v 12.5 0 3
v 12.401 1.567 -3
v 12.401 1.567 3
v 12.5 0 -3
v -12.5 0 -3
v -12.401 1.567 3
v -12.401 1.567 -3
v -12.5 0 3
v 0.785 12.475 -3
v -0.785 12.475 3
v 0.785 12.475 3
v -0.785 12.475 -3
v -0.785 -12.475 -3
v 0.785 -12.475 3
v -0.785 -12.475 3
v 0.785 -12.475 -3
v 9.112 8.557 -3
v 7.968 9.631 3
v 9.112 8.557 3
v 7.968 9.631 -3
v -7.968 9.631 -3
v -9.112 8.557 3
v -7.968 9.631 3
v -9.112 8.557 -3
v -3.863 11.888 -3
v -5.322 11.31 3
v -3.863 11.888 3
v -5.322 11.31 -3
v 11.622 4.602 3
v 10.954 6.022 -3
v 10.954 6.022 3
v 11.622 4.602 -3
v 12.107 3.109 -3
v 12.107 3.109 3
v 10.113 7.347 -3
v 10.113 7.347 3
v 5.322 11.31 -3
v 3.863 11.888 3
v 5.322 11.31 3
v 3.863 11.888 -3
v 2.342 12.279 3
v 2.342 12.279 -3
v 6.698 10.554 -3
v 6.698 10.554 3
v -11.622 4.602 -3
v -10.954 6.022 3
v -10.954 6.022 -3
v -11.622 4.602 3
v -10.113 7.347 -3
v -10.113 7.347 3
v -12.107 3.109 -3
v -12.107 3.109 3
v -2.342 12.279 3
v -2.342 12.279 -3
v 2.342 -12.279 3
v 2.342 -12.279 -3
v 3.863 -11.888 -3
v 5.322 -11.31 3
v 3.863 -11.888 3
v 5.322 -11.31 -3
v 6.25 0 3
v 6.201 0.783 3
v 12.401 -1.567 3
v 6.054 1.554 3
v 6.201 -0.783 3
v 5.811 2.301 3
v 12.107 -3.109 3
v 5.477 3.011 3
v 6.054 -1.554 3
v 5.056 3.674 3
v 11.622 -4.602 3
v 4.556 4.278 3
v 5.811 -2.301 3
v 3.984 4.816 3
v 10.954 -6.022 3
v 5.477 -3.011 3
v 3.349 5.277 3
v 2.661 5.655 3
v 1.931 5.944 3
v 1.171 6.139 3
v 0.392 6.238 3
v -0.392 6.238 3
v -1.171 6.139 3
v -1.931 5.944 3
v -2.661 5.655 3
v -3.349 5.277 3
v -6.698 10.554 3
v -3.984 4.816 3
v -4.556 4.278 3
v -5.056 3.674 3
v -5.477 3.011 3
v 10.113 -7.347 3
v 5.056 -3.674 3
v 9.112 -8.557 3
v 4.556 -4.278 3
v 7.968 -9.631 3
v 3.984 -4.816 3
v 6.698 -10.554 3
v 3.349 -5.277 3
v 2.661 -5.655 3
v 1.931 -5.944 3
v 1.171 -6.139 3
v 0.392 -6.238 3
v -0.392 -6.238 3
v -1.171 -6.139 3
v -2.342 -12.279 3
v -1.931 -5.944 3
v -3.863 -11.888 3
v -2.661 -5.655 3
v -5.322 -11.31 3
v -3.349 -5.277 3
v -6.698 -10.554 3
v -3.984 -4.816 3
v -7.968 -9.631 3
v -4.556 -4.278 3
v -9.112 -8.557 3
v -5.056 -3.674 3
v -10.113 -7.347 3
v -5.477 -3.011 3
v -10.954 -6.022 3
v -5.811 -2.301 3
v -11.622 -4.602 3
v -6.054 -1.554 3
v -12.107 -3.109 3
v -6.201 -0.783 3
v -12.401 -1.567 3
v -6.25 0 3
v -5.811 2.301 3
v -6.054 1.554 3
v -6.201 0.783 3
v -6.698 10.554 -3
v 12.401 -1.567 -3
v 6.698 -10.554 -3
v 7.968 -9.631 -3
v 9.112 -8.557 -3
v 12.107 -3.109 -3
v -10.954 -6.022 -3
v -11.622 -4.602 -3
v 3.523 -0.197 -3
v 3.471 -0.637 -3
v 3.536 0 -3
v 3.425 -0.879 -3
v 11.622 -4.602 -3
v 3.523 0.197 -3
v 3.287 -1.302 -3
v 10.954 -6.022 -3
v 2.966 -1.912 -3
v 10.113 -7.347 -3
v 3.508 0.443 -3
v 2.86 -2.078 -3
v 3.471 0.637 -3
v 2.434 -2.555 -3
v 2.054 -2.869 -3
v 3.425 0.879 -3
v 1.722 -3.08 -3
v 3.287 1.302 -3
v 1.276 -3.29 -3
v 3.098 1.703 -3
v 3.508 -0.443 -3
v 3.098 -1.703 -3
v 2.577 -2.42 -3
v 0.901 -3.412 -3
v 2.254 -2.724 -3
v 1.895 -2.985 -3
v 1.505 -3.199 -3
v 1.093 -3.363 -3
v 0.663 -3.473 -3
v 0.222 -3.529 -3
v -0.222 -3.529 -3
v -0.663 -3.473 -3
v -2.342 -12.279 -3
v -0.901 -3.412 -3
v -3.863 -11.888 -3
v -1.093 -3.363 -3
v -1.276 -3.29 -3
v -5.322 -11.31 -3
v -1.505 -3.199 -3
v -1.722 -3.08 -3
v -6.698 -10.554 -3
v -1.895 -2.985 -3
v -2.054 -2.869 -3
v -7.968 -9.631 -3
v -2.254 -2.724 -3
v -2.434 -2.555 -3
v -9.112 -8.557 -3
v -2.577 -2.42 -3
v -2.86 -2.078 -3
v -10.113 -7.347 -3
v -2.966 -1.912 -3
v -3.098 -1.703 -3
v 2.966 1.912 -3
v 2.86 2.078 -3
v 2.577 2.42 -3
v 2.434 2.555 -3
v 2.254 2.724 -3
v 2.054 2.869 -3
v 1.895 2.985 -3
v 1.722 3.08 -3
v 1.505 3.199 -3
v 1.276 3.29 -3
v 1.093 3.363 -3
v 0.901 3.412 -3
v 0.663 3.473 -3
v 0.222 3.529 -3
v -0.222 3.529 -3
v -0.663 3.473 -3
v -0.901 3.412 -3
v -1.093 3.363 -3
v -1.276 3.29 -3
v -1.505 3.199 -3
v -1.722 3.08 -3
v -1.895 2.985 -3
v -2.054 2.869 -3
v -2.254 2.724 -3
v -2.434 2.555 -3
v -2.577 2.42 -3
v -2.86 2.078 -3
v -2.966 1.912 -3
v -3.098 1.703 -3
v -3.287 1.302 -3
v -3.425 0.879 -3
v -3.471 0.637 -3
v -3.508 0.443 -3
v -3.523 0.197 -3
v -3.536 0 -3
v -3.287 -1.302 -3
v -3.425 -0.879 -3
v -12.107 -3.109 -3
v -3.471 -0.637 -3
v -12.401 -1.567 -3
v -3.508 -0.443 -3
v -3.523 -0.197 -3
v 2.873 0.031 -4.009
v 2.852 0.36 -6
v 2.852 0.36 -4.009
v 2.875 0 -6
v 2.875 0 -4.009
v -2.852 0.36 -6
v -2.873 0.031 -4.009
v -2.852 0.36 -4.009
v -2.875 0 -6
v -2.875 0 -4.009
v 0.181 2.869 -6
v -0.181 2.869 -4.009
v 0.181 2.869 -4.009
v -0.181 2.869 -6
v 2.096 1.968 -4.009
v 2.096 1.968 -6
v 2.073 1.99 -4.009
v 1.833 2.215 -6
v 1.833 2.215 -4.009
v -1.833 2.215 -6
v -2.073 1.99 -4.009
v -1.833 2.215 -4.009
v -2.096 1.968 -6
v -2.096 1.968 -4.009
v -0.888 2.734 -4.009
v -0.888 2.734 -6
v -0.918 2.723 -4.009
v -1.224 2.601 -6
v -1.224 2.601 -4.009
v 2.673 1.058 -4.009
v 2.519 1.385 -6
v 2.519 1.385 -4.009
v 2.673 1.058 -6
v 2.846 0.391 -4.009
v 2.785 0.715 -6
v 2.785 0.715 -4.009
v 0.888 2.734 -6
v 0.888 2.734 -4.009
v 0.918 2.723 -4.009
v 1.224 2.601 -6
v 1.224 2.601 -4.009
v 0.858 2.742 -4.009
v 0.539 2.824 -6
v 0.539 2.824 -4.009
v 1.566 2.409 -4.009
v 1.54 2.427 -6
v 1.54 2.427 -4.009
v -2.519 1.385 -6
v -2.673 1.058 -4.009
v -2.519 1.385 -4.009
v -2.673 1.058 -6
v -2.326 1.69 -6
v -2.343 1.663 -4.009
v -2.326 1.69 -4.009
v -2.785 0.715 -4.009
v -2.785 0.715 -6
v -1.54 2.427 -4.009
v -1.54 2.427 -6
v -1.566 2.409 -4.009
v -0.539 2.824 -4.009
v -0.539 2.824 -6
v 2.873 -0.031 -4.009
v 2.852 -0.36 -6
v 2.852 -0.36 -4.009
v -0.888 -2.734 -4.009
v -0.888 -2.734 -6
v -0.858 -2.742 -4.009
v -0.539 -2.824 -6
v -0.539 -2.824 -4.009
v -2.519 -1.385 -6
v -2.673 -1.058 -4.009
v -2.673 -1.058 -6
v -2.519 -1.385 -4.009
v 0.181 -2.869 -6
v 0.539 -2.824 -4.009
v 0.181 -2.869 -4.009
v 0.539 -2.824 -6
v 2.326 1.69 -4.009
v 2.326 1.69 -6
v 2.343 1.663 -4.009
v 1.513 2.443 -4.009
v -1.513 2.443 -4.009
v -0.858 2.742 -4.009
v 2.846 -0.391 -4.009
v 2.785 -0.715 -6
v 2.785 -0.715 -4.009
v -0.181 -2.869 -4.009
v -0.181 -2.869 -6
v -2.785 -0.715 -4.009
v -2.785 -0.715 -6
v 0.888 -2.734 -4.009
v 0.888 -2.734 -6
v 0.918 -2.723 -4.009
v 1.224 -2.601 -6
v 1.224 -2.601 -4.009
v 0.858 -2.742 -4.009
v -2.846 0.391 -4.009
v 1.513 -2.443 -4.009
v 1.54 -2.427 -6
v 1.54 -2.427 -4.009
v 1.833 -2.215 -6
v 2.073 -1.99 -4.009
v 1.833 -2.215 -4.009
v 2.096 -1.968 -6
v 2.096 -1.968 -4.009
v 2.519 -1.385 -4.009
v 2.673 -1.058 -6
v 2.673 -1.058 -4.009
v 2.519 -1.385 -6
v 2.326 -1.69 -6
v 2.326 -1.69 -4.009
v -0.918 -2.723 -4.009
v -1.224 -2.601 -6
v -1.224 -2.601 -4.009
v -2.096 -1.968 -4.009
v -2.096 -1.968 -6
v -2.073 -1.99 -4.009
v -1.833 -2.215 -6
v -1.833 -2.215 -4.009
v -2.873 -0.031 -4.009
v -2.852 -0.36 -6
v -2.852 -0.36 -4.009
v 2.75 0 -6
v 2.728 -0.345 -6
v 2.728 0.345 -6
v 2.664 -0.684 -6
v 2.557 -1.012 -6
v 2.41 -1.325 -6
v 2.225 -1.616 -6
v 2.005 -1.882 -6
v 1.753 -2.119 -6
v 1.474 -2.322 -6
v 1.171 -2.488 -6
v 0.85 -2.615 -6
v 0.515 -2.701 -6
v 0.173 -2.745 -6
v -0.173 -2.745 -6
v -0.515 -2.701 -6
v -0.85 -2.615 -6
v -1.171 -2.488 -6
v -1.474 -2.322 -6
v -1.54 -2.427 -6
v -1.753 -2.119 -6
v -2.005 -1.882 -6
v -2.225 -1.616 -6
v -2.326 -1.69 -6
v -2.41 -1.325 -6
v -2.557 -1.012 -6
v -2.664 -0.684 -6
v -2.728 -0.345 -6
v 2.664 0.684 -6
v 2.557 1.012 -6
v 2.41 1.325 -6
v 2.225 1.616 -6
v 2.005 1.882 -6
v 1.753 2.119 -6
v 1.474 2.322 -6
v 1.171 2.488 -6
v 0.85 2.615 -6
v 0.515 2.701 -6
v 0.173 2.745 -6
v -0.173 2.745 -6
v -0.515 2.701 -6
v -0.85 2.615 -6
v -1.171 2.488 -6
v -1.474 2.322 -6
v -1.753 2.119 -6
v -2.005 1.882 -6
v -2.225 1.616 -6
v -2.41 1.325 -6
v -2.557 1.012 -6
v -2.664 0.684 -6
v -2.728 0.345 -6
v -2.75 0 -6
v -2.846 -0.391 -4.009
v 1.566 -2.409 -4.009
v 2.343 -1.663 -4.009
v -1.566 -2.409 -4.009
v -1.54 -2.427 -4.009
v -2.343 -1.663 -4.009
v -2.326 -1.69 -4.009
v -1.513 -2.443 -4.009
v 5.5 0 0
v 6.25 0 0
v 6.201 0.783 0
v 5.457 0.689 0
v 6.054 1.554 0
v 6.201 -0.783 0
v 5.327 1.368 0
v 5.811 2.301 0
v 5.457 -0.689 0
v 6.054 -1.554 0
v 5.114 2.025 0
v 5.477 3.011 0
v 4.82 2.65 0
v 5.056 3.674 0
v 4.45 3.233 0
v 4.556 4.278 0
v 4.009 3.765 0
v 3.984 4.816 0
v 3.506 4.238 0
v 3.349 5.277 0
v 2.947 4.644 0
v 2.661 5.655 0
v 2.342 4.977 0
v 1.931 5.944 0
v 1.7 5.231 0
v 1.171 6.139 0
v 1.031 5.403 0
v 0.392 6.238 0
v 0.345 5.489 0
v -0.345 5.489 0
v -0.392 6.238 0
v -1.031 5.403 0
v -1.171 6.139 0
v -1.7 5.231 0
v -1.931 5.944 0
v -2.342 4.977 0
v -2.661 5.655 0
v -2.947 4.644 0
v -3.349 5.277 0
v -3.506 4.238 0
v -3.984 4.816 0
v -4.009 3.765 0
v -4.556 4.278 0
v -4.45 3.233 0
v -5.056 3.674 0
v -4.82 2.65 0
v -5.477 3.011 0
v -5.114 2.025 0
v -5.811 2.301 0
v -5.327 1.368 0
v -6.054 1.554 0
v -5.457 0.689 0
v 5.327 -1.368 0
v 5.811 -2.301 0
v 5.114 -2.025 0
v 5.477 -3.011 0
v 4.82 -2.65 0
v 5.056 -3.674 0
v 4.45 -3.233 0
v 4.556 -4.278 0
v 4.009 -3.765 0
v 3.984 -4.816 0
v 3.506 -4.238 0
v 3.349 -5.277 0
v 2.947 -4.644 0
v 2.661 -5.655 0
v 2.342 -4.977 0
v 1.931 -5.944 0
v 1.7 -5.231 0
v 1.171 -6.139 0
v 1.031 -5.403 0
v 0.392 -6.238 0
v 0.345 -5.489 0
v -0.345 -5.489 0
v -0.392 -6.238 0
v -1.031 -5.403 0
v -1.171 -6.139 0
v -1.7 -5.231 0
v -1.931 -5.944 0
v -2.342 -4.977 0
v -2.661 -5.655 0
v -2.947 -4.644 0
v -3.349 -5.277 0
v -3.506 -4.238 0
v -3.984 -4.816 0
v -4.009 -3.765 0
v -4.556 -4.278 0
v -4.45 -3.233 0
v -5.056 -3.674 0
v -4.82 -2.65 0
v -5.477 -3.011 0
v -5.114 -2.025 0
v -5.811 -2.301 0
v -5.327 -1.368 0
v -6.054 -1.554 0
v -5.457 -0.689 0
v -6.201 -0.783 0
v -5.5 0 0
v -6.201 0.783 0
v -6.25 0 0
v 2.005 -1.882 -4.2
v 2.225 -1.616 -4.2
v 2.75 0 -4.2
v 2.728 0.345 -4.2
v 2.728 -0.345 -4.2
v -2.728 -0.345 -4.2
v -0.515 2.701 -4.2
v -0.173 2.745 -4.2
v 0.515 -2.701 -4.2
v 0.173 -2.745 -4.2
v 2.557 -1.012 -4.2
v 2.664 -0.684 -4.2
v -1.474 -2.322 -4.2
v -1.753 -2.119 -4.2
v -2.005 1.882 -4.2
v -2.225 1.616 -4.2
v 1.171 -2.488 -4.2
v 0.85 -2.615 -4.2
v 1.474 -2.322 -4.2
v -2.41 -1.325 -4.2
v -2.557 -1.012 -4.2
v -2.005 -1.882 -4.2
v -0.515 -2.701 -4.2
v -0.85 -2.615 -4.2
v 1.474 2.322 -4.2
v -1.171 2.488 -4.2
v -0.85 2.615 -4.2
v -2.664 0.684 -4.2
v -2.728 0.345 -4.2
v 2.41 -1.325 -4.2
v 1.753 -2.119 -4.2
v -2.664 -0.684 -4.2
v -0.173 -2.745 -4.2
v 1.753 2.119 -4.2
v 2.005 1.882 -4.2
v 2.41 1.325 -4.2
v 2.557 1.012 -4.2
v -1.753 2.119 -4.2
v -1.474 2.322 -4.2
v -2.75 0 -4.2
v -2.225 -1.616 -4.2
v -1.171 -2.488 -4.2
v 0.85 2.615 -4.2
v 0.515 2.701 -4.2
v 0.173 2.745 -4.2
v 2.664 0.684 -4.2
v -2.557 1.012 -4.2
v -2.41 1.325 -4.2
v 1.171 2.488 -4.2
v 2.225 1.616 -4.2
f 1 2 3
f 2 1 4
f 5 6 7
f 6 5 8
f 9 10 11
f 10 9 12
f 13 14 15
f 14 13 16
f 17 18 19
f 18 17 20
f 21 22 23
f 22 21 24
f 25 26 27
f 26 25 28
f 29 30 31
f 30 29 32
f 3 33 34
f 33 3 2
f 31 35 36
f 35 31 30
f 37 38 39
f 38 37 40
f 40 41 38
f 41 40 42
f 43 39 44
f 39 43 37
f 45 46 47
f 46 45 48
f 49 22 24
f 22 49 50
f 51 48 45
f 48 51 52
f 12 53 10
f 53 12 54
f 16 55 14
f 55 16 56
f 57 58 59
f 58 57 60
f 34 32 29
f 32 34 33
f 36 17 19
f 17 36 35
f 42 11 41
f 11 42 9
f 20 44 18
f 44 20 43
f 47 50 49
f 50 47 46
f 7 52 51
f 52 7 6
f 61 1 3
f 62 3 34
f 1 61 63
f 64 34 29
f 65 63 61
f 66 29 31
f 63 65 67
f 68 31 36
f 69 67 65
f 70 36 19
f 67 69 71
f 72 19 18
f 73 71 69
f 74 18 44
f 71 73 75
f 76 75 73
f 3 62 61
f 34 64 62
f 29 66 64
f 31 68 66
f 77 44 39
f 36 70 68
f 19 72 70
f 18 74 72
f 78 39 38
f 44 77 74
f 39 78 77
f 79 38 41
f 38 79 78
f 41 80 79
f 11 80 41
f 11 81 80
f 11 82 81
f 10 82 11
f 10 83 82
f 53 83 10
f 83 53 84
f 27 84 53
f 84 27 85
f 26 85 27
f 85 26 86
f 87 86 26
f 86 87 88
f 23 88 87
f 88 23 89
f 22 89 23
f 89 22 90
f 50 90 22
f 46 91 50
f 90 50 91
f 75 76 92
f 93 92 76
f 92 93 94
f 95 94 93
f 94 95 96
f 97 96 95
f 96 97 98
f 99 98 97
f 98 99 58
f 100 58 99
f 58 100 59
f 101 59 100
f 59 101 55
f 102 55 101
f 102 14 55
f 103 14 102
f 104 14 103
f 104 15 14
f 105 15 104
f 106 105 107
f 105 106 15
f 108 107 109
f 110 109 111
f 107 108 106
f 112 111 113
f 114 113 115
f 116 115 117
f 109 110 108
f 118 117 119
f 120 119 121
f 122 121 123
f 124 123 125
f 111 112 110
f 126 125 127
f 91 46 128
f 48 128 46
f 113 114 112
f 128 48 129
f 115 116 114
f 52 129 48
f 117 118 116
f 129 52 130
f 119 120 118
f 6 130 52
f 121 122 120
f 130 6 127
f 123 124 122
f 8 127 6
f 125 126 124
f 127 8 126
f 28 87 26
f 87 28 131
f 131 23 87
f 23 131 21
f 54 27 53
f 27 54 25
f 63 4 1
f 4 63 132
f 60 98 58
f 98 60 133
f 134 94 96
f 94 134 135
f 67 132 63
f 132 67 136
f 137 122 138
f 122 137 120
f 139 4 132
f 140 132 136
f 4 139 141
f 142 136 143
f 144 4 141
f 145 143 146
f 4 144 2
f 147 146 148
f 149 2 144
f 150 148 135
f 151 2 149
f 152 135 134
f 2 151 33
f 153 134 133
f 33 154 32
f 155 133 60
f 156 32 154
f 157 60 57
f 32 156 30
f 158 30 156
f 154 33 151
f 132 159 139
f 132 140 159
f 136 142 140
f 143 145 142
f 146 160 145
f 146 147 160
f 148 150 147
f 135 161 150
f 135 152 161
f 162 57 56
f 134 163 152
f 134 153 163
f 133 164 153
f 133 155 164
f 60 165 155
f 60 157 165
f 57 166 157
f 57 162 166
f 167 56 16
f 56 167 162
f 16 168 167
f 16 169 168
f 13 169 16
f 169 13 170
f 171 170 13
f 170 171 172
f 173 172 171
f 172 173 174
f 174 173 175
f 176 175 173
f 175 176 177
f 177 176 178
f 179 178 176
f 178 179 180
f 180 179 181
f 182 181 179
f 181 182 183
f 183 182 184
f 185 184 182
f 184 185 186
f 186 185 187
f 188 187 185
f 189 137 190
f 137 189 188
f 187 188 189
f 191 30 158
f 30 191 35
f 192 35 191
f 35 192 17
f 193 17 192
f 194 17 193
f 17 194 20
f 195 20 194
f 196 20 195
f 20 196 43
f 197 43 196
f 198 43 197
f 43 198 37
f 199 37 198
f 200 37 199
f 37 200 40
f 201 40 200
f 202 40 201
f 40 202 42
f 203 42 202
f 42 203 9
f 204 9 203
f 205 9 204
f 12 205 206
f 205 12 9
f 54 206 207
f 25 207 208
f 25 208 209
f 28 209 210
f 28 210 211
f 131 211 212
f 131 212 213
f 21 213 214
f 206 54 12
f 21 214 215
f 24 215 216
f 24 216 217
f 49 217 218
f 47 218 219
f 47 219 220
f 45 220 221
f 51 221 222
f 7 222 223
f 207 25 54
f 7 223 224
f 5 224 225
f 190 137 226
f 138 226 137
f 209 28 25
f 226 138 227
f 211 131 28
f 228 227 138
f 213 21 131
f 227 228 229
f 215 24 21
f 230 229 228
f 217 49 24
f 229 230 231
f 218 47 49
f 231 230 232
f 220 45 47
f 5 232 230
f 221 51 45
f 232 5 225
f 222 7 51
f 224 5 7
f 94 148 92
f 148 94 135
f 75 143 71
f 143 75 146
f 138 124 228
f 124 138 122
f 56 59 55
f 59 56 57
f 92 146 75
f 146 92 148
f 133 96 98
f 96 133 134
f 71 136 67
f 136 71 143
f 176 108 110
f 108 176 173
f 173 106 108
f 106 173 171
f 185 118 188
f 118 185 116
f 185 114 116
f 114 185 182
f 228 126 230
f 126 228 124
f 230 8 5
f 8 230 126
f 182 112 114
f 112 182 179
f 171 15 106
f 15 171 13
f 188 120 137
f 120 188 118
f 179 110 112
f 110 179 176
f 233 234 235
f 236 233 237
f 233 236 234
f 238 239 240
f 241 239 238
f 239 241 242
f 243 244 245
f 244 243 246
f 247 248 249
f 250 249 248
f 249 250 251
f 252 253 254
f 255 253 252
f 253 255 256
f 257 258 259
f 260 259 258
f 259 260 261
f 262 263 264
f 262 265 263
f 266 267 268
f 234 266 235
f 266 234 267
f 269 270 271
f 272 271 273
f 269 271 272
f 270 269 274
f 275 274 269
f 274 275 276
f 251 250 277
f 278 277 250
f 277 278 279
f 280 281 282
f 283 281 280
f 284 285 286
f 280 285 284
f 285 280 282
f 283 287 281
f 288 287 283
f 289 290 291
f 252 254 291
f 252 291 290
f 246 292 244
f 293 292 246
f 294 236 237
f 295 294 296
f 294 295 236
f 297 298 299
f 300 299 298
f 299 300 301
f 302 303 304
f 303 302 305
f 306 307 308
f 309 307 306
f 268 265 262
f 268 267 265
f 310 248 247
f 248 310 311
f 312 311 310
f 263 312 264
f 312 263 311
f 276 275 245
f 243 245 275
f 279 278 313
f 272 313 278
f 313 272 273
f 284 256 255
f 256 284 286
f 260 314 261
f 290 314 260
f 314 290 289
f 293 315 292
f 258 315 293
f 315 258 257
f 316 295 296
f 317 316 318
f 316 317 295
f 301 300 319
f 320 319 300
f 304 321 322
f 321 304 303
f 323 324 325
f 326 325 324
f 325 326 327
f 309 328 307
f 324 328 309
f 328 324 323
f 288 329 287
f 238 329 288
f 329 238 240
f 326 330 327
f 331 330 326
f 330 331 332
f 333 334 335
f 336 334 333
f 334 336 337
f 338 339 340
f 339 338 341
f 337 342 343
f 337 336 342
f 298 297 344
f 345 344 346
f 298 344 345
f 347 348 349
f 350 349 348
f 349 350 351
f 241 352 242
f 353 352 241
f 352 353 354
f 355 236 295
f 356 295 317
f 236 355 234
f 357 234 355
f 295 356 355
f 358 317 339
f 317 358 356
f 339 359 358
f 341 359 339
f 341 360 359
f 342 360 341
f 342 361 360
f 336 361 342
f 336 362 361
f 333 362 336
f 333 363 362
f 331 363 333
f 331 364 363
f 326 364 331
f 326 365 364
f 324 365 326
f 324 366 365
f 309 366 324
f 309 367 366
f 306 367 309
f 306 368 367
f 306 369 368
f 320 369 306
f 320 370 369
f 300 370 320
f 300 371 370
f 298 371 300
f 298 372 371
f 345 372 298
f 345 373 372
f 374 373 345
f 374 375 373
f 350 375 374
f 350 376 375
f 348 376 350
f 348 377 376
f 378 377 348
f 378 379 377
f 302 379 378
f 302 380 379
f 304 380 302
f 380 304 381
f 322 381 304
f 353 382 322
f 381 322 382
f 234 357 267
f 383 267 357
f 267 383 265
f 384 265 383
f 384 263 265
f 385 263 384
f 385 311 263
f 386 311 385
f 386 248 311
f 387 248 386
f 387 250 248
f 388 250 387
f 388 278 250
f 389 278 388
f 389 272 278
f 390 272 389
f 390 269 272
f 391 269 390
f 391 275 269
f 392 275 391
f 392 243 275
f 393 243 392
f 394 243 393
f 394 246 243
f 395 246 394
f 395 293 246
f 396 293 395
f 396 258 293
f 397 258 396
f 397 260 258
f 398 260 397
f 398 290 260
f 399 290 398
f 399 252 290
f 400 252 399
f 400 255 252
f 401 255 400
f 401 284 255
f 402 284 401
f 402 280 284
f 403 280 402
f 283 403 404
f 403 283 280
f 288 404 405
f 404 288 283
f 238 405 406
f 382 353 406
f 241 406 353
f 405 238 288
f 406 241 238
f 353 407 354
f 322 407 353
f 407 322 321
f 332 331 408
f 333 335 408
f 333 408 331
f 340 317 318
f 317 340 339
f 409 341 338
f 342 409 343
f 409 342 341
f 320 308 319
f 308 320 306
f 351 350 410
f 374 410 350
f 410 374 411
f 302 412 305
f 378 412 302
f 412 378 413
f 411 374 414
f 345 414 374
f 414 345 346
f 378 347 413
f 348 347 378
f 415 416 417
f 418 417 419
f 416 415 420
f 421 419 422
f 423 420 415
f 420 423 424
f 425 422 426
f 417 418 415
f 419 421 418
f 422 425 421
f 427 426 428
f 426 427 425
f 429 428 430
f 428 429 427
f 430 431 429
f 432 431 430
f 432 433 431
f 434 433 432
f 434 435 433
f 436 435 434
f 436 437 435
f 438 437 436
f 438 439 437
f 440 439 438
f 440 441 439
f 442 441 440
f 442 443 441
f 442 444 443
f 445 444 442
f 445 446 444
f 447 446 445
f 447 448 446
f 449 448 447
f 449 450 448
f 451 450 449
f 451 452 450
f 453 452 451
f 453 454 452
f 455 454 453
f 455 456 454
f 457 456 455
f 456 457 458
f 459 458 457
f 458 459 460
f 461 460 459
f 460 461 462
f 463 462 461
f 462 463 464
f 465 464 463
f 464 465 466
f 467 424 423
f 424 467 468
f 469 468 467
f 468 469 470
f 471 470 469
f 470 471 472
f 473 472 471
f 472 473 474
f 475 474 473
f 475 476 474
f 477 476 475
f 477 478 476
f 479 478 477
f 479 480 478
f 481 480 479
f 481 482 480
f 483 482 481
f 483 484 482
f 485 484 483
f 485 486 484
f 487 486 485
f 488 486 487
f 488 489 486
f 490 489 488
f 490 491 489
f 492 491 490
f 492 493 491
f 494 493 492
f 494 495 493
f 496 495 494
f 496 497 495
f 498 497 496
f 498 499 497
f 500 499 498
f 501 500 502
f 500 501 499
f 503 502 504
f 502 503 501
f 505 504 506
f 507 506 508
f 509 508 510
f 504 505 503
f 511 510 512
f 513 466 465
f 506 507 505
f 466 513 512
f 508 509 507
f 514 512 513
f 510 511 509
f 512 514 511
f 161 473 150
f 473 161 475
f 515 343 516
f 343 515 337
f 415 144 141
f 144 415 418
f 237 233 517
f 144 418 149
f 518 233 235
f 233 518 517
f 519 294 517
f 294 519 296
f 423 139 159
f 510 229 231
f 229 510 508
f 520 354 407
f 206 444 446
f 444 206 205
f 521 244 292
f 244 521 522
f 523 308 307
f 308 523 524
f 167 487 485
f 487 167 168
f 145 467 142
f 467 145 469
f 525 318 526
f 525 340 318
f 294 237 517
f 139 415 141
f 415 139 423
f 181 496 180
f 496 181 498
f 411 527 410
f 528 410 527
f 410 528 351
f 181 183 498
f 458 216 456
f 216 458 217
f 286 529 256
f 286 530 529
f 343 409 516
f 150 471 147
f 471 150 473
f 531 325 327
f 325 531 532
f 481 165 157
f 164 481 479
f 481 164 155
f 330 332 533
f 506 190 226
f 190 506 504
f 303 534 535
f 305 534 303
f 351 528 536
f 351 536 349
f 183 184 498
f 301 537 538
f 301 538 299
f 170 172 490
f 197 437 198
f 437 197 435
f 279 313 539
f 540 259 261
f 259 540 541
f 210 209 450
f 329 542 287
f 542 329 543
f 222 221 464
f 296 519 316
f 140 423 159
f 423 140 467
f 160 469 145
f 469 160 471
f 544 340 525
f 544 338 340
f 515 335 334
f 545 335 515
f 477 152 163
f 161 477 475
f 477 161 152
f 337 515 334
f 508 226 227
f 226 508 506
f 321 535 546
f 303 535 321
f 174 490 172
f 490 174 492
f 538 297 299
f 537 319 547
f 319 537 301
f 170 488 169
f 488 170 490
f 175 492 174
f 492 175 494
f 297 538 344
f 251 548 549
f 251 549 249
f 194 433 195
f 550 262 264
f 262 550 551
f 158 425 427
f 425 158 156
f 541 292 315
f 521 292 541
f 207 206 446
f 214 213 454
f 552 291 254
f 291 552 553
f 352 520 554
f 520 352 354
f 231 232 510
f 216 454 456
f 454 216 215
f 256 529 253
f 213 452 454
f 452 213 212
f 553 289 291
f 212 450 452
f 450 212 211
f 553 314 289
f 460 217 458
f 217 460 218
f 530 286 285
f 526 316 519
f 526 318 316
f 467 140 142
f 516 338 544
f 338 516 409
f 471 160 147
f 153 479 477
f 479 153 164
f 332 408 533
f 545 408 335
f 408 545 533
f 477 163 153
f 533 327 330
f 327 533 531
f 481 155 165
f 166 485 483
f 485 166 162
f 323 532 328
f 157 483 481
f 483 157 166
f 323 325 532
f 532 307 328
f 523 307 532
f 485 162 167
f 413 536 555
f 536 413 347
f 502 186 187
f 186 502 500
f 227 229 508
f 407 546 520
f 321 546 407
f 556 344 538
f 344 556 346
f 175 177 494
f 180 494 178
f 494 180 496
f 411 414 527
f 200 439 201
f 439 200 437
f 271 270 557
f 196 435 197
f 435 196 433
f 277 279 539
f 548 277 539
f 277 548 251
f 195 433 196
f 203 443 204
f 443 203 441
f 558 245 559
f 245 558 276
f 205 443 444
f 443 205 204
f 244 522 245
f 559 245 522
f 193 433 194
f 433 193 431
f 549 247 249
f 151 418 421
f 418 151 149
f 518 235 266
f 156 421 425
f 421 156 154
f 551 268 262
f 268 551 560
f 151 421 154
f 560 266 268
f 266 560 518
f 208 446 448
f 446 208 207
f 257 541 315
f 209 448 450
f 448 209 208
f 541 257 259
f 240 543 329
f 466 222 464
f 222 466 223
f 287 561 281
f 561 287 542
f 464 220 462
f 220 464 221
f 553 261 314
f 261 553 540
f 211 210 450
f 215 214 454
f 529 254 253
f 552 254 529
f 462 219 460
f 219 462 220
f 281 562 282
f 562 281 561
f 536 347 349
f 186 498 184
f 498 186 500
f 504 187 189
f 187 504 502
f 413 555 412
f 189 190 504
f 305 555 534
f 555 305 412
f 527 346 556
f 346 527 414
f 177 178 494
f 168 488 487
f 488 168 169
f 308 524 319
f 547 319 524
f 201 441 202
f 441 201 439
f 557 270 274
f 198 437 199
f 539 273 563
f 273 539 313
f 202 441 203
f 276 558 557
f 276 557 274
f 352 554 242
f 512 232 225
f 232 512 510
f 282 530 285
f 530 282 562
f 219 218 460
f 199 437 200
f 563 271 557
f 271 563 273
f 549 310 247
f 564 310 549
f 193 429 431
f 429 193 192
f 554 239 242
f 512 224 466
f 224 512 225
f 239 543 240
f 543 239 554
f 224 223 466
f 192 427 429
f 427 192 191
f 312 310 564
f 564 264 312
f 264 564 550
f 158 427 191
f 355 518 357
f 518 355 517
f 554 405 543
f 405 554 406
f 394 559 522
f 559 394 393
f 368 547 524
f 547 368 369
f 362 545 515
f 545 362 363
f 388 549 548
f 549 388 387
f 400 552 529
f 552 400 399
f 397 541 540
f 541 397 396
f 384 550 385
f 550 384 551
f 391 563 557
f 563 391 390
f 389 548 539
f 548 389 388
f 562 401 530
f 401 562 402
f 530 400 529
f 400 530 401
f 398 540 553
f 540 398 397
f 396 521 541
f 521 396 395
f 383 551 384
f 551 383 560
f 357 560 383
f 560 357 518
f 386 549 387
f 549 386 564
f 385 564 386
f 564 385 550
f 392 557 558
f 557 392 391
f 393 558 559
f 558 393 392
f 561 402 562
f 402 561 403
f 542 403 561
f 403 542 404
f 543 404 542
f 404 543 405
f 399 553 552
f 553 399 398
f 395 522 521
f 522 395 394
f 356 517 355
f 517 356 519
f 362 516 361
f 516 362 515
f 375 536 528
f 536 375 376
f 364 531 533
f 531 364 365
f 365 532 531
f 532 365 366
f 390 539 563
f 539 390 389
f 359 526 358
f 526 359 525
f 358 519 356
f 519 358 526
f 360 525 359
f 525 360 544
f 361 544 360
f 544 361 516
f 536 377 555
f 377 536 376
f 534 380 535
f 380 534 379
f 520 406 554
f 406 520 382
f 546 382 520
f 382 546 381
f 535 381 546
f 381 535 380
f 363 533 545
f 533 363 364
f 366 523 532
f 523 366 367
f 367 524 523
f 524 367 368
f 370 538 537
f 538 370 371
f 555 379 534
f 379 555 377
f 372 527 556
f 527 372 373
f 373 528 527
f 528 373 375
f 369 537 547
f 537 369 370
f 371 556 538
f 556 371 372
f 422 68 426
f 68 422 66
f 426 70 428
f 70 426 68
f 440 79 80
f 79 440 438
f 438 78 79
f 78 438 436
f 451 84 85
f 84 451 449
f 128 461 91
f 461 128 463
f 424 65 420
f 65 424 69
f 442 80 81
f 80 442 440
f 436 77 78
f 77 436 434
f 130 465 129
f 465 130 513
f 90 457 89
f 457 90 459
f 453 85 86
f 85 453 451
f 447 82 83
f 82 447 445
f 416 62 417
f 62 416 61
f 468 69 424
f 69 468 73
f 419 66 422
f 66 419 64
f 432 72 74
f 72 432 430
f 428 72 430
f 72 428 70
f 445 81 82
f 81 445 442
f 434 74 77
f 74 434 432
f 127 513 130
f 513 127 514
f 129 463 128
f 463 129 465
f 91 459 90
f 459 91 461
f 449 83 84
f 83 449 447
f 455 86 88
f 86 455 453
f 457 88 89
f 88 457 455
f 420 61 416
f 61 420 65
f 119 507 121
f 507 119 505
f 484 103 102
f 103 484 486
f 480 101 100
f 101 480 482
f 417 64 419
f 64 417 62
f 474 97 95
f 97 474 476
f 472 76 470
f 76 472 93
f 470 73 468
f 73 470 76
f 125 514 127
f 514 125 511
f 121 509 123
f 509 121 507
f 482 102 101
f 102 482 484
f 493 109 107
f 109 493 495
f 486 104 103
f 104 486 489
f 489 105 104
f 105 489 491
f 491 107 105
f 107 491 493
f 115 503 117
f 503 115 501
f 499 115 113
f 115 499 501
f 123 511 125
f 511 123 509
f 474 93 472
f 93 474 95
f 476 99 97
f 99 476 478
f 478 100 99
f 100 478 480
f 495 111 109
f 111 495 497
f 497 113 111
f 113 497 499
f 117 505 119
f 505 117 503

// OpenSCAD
$fn = 50;

difference() {
	union() {
		translate(v = [0, 0, -3.0]) {
			cylinder(h = 6, r = 12.5);
		}
		#translate(v = [0, 0, -6.0]) {
			cylinder(h = 6, r = 2.875);
		}
	}
	union() {
		translate(v = [0, 0, 0]) {
			rotate(a = [0, 0, 0]) {
				difference() {
					union() {
						translate(v = [0, 0, -6.0]) {
							cylinder(h = 6, r = 2.25);
						}
						translate(v = [0, 0, -4.2]) {
							cylinder(h = 4.2, r1 = 2.75, r2 = 5.5);
						}
						translate(v = [0, 0, -6.0]) {
							cylinder(h = 6, r = 2.75);
						}
						translate(v = [0, 0, -6.0]) {
							cylinder(h = 6, r = 2.25);
						}
					}
					union();
				}
			}
		}
		#cylinder(h = 3, r = 6.25);
	}
}
